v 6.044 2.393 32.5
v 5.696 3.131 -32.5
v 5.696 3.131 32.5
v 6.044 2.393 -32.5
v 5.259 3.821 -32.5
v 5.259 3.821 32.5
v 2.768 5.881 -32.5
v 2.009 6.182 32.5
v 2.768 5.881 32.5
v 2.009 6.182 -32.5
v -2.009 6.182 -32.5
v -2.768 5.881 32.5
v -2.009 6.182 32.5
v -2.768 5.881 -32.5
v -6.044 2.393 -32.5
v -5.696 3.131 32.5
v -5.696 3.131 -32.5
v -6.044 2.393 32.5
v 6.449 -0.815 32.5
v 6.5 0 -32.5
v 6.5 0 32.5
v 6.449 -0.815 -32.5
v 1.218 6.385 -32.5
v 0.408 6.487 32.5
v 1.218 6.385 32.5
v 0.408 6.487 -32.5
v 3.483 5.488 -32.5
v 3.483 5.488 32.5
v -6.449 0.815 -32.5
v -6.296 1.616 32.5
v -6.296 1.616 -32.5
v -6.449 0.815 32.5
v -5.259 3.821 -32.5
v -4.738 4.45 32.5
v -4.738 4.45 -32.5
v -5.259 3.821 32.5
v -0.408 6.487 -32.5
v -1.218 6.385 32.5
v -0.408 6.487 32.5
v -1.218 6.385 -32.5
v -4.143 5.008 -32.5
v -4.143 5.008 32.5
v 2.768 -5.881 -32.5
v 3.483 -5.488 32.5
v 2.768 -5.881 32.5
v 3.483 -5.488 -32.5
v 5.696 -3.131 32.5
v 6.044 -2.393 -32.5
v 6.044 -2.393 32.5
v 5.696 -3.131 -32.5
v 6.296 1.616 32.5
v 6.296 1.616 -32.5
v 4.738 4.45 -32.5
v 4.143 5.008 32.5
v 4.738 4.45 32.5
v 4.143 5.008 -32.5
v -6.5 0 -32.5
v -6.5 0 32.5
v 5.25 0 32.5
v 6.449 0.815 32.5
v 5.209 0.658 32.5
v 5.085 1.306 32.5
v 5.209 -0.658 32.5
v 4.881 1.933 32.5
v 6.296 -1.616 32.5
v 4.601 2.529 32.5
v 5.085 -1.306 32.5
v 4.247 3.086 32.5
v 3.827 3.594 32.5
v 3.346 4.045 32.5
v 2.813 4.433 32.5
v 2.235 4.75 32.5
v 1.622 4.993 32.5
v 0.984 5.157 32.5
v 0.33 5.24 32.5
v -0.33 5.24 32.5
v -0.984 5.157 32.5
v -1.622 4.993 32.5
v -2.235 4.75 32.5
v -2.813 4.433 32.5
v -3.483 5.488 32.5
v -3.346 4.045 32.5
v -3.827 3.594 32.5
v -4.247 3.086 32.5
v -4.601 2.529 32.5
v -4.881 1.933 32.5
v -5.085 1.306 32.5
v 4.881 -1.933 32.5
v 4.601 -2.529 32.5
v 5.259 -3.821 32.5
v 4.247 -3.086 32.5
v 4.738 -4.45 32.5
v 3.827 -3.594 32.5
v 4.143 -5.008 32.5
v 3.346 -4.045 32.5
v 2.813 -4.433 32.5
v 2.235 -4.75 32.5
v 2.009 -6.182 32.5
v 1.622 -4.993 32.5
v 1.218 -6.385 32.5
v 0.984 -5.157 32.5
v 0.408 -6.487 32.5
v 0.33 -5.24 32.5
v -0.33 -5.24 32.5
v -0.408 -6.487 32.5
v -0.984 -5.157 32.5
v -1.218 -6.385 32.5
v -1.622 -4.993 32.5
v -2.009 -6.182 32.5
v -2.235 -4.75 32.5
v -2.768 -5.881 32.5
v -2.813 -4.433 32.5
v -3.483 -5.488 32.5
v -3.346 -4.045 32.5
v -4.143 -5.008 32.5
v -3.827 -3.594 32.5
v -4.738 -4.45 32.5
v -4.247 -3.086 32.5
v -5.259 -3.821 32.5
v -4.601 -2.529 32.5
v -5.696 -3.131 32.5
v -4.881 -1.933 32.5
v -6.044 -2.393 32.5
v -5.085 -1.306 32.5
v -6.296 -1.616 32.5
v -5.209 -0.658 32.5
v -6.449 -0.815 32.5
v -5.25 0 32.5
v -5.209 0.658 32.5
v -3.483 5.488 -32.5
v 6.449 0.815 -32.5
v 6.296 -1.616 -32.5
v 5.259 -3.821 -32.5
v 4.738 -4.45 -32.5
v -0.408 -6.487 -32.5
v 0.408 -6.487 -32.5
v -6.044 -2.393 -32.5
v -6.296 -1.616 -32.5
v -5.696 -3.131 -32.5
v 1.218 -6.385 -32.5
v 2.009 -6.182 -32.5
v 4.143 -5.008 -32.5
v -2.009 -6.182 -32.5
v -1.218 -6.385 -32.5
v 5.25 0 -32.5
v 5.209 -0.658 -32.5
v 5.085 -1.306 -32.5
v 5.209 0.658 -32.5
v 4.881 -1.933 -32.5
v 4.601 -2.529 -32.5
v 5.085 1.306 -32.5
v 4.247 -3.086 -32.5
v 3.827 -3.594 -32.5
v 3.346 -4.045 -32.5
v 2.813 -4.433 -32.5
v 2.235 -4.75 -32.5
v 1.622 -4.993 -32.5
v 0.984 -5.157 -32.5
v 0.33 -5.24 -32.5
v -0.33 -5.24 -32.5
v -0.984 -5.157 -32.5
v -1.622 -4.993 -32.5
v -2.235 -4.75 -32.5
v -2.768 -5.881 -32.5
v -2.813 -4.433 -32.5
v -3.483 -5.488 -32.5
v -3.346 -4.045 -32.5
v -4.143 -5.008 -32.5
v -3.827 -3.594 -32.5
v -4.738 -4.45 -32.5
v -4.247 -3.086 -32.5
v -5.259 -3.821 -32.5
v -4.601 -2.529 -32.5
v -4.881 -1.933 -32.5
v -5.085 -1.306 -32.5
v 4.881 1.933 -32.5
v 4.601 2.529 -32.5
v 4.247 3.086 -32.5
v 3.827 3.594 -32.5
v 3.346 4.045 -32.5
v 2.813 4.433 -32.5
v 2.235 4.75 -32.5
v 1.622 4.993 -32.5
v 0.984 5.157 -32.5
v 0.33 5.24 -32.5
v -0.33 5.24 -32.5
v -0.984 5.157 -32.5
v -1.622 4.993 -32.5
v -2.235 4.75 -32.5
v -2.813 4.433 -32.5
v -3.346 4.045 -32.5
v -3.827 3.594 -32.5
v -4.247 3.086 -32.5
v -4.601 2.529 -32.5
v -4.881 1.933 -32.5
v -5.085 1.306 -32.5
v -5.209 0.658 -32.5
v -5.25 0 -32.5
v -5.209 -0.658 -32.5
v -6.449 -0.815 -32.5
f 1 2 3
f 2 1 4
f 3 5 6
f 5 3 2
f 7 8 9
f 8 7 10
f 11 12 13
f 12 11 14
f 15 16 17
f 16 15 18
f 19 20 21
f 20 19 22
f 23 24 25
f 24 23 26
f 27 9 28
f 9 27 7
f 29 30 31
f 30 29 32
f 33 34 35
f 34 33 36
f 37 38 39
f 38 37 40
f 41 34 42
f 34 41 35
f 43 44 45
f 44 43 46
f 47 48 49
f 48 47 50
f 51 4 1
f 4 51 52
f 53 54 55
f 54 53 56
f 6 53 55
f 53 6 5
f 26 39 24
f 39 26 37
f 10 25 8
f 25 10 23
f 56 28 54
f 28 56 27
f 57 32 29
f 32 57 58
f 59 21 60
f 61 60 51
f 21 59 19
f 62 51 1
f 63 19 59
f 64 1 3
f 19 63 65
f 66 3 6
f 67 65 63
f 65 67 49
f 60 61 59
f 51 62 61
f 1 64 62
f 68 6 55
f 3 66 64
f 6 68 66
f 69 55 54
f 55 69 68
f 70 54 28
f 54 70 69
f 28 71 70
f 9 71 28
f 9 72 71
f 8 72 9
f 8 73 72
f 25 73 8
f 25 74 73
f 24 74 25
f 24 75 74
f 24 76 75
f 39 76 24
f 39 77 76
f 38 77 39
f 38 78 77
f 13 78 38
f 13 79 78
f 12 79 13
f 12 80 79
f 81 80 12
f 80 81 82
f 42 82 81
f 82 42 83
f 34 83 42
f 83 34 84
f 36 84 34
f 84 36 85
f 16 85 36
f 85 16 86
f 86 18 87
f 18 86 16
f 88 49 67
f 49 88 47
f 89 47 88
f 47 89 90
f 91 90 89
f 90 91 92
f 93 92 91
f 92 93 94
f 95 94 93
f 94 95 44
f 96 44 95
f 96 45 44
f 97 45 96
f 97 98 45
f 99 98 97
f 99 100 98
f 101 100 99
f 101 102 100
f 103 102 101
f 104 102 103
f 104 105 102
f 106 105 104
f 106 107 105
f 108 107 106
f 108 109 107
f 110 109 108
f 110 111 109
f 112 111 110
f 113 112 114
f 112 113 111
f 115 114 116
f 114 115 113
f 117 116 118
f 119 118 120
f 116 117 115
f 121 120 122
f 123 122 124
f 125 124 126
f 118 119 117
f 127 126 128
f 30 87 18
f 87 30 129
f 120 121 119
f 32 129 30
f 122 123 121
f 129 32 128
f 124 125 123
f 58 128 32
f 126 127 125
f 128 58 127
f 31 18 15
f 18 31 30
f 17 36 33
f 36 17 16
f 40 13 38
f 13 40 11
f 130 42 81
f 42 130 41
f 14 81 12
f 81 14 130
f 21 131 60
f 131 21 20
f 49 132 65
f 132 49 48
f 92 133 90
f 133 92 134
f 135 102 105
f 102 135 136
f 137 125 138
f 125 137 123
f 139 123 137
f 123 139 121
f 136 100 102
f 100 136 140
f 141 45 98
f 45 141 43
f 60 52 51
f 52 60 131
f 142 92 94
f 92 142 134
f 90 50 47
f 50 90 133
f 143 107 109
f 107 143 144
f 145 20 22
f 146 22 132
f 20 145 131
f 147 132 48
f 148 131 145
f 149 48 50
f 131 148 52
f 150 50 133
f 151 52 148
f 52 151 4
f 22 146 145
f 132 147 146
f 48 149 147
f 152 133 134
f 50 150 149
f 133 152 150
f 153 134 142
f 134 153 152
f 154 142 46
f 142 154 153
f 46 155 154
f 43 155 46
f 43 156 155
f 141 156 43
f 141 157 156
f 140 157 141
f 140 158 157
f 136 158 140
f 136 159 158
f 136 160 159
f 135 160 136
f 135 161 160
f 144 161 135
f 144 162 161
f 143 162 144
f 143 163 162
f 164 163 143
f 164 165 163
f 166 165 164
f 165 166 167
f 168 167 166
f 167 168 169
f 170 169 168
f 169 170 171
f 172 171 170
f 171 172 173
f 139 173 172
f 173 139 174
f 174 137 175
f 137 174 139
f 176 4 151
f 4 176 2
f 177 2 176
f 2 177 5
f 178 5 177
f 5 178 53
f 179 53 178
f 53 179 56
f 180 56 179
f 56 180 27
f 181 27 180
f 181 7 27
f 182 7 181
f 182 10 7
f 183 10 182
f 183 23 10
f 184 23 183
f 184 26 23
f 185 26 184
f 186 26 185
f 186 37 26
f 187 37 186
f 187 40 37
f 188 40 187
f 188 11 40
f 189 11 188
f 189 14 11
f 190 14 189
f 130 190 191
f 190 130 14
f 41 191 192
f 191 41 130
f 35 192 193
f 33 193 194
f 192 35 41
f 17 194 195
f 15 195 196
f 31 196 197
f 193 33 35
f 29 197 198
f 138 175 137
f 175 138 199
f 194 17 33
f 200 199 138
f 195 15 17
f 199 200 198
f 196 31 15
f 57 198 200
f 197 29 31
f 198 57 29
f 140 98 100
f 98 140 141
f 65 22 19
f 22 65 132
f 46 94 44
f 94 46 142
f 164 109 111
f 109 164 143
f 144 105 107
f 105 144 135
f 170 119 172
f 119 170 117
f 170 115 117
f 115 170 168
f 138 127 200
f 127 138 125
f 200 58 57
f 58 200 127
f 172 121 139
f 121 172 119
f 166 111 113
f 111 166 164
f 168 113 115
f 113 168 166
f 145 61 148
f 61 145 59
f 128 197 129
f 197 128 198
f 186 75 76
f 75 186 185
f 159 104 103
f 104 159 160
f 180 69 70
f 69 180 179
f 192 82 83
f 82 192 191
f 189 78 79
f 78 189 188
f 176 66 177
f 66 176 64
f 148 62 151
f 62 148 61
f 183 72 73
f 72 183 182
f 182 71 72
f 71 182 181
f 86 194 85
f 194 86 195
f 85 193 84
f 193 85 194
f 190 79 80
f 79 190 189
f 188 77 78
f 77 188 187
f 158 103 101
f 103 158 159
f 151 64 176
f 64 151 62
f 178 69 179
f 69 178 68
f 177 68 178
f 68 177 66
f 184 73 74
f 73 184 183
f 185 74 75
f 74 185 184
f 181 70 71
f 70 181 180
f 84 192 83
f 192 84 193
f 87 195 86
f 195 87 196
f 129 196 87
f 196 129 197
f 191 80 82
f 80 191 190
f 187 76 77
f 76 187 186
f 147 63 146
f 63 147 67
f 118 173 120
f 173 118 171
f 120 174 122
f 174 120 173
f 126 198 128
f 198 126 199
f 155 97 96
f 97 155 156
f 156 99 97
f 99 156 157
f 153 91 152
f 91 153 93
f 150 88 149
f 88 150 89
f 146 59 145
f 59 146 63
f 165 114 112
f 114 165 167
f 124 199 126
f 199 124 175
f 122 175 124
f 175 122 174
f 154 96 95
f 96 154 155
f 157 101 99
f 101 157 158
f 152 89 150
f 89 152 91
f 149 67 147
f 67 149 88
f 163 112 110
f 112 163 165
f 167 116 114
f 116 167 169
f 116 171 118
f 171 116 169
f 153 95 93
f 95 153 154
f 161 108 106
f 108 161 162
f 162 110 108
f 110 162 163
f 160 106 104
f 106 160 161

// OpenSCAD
$fn = 50;


difference() {
	union() {
		translate(v = [0, 0, -32.5000000000]) {
			cylinder(h = 65, r = 6.5000000000);
		}
	}
	union() {
		translate(v = [0, 0, -100.0000000000]) {
			cylinder(h = 200, r = 5.2500000000);
		}
	}
}
